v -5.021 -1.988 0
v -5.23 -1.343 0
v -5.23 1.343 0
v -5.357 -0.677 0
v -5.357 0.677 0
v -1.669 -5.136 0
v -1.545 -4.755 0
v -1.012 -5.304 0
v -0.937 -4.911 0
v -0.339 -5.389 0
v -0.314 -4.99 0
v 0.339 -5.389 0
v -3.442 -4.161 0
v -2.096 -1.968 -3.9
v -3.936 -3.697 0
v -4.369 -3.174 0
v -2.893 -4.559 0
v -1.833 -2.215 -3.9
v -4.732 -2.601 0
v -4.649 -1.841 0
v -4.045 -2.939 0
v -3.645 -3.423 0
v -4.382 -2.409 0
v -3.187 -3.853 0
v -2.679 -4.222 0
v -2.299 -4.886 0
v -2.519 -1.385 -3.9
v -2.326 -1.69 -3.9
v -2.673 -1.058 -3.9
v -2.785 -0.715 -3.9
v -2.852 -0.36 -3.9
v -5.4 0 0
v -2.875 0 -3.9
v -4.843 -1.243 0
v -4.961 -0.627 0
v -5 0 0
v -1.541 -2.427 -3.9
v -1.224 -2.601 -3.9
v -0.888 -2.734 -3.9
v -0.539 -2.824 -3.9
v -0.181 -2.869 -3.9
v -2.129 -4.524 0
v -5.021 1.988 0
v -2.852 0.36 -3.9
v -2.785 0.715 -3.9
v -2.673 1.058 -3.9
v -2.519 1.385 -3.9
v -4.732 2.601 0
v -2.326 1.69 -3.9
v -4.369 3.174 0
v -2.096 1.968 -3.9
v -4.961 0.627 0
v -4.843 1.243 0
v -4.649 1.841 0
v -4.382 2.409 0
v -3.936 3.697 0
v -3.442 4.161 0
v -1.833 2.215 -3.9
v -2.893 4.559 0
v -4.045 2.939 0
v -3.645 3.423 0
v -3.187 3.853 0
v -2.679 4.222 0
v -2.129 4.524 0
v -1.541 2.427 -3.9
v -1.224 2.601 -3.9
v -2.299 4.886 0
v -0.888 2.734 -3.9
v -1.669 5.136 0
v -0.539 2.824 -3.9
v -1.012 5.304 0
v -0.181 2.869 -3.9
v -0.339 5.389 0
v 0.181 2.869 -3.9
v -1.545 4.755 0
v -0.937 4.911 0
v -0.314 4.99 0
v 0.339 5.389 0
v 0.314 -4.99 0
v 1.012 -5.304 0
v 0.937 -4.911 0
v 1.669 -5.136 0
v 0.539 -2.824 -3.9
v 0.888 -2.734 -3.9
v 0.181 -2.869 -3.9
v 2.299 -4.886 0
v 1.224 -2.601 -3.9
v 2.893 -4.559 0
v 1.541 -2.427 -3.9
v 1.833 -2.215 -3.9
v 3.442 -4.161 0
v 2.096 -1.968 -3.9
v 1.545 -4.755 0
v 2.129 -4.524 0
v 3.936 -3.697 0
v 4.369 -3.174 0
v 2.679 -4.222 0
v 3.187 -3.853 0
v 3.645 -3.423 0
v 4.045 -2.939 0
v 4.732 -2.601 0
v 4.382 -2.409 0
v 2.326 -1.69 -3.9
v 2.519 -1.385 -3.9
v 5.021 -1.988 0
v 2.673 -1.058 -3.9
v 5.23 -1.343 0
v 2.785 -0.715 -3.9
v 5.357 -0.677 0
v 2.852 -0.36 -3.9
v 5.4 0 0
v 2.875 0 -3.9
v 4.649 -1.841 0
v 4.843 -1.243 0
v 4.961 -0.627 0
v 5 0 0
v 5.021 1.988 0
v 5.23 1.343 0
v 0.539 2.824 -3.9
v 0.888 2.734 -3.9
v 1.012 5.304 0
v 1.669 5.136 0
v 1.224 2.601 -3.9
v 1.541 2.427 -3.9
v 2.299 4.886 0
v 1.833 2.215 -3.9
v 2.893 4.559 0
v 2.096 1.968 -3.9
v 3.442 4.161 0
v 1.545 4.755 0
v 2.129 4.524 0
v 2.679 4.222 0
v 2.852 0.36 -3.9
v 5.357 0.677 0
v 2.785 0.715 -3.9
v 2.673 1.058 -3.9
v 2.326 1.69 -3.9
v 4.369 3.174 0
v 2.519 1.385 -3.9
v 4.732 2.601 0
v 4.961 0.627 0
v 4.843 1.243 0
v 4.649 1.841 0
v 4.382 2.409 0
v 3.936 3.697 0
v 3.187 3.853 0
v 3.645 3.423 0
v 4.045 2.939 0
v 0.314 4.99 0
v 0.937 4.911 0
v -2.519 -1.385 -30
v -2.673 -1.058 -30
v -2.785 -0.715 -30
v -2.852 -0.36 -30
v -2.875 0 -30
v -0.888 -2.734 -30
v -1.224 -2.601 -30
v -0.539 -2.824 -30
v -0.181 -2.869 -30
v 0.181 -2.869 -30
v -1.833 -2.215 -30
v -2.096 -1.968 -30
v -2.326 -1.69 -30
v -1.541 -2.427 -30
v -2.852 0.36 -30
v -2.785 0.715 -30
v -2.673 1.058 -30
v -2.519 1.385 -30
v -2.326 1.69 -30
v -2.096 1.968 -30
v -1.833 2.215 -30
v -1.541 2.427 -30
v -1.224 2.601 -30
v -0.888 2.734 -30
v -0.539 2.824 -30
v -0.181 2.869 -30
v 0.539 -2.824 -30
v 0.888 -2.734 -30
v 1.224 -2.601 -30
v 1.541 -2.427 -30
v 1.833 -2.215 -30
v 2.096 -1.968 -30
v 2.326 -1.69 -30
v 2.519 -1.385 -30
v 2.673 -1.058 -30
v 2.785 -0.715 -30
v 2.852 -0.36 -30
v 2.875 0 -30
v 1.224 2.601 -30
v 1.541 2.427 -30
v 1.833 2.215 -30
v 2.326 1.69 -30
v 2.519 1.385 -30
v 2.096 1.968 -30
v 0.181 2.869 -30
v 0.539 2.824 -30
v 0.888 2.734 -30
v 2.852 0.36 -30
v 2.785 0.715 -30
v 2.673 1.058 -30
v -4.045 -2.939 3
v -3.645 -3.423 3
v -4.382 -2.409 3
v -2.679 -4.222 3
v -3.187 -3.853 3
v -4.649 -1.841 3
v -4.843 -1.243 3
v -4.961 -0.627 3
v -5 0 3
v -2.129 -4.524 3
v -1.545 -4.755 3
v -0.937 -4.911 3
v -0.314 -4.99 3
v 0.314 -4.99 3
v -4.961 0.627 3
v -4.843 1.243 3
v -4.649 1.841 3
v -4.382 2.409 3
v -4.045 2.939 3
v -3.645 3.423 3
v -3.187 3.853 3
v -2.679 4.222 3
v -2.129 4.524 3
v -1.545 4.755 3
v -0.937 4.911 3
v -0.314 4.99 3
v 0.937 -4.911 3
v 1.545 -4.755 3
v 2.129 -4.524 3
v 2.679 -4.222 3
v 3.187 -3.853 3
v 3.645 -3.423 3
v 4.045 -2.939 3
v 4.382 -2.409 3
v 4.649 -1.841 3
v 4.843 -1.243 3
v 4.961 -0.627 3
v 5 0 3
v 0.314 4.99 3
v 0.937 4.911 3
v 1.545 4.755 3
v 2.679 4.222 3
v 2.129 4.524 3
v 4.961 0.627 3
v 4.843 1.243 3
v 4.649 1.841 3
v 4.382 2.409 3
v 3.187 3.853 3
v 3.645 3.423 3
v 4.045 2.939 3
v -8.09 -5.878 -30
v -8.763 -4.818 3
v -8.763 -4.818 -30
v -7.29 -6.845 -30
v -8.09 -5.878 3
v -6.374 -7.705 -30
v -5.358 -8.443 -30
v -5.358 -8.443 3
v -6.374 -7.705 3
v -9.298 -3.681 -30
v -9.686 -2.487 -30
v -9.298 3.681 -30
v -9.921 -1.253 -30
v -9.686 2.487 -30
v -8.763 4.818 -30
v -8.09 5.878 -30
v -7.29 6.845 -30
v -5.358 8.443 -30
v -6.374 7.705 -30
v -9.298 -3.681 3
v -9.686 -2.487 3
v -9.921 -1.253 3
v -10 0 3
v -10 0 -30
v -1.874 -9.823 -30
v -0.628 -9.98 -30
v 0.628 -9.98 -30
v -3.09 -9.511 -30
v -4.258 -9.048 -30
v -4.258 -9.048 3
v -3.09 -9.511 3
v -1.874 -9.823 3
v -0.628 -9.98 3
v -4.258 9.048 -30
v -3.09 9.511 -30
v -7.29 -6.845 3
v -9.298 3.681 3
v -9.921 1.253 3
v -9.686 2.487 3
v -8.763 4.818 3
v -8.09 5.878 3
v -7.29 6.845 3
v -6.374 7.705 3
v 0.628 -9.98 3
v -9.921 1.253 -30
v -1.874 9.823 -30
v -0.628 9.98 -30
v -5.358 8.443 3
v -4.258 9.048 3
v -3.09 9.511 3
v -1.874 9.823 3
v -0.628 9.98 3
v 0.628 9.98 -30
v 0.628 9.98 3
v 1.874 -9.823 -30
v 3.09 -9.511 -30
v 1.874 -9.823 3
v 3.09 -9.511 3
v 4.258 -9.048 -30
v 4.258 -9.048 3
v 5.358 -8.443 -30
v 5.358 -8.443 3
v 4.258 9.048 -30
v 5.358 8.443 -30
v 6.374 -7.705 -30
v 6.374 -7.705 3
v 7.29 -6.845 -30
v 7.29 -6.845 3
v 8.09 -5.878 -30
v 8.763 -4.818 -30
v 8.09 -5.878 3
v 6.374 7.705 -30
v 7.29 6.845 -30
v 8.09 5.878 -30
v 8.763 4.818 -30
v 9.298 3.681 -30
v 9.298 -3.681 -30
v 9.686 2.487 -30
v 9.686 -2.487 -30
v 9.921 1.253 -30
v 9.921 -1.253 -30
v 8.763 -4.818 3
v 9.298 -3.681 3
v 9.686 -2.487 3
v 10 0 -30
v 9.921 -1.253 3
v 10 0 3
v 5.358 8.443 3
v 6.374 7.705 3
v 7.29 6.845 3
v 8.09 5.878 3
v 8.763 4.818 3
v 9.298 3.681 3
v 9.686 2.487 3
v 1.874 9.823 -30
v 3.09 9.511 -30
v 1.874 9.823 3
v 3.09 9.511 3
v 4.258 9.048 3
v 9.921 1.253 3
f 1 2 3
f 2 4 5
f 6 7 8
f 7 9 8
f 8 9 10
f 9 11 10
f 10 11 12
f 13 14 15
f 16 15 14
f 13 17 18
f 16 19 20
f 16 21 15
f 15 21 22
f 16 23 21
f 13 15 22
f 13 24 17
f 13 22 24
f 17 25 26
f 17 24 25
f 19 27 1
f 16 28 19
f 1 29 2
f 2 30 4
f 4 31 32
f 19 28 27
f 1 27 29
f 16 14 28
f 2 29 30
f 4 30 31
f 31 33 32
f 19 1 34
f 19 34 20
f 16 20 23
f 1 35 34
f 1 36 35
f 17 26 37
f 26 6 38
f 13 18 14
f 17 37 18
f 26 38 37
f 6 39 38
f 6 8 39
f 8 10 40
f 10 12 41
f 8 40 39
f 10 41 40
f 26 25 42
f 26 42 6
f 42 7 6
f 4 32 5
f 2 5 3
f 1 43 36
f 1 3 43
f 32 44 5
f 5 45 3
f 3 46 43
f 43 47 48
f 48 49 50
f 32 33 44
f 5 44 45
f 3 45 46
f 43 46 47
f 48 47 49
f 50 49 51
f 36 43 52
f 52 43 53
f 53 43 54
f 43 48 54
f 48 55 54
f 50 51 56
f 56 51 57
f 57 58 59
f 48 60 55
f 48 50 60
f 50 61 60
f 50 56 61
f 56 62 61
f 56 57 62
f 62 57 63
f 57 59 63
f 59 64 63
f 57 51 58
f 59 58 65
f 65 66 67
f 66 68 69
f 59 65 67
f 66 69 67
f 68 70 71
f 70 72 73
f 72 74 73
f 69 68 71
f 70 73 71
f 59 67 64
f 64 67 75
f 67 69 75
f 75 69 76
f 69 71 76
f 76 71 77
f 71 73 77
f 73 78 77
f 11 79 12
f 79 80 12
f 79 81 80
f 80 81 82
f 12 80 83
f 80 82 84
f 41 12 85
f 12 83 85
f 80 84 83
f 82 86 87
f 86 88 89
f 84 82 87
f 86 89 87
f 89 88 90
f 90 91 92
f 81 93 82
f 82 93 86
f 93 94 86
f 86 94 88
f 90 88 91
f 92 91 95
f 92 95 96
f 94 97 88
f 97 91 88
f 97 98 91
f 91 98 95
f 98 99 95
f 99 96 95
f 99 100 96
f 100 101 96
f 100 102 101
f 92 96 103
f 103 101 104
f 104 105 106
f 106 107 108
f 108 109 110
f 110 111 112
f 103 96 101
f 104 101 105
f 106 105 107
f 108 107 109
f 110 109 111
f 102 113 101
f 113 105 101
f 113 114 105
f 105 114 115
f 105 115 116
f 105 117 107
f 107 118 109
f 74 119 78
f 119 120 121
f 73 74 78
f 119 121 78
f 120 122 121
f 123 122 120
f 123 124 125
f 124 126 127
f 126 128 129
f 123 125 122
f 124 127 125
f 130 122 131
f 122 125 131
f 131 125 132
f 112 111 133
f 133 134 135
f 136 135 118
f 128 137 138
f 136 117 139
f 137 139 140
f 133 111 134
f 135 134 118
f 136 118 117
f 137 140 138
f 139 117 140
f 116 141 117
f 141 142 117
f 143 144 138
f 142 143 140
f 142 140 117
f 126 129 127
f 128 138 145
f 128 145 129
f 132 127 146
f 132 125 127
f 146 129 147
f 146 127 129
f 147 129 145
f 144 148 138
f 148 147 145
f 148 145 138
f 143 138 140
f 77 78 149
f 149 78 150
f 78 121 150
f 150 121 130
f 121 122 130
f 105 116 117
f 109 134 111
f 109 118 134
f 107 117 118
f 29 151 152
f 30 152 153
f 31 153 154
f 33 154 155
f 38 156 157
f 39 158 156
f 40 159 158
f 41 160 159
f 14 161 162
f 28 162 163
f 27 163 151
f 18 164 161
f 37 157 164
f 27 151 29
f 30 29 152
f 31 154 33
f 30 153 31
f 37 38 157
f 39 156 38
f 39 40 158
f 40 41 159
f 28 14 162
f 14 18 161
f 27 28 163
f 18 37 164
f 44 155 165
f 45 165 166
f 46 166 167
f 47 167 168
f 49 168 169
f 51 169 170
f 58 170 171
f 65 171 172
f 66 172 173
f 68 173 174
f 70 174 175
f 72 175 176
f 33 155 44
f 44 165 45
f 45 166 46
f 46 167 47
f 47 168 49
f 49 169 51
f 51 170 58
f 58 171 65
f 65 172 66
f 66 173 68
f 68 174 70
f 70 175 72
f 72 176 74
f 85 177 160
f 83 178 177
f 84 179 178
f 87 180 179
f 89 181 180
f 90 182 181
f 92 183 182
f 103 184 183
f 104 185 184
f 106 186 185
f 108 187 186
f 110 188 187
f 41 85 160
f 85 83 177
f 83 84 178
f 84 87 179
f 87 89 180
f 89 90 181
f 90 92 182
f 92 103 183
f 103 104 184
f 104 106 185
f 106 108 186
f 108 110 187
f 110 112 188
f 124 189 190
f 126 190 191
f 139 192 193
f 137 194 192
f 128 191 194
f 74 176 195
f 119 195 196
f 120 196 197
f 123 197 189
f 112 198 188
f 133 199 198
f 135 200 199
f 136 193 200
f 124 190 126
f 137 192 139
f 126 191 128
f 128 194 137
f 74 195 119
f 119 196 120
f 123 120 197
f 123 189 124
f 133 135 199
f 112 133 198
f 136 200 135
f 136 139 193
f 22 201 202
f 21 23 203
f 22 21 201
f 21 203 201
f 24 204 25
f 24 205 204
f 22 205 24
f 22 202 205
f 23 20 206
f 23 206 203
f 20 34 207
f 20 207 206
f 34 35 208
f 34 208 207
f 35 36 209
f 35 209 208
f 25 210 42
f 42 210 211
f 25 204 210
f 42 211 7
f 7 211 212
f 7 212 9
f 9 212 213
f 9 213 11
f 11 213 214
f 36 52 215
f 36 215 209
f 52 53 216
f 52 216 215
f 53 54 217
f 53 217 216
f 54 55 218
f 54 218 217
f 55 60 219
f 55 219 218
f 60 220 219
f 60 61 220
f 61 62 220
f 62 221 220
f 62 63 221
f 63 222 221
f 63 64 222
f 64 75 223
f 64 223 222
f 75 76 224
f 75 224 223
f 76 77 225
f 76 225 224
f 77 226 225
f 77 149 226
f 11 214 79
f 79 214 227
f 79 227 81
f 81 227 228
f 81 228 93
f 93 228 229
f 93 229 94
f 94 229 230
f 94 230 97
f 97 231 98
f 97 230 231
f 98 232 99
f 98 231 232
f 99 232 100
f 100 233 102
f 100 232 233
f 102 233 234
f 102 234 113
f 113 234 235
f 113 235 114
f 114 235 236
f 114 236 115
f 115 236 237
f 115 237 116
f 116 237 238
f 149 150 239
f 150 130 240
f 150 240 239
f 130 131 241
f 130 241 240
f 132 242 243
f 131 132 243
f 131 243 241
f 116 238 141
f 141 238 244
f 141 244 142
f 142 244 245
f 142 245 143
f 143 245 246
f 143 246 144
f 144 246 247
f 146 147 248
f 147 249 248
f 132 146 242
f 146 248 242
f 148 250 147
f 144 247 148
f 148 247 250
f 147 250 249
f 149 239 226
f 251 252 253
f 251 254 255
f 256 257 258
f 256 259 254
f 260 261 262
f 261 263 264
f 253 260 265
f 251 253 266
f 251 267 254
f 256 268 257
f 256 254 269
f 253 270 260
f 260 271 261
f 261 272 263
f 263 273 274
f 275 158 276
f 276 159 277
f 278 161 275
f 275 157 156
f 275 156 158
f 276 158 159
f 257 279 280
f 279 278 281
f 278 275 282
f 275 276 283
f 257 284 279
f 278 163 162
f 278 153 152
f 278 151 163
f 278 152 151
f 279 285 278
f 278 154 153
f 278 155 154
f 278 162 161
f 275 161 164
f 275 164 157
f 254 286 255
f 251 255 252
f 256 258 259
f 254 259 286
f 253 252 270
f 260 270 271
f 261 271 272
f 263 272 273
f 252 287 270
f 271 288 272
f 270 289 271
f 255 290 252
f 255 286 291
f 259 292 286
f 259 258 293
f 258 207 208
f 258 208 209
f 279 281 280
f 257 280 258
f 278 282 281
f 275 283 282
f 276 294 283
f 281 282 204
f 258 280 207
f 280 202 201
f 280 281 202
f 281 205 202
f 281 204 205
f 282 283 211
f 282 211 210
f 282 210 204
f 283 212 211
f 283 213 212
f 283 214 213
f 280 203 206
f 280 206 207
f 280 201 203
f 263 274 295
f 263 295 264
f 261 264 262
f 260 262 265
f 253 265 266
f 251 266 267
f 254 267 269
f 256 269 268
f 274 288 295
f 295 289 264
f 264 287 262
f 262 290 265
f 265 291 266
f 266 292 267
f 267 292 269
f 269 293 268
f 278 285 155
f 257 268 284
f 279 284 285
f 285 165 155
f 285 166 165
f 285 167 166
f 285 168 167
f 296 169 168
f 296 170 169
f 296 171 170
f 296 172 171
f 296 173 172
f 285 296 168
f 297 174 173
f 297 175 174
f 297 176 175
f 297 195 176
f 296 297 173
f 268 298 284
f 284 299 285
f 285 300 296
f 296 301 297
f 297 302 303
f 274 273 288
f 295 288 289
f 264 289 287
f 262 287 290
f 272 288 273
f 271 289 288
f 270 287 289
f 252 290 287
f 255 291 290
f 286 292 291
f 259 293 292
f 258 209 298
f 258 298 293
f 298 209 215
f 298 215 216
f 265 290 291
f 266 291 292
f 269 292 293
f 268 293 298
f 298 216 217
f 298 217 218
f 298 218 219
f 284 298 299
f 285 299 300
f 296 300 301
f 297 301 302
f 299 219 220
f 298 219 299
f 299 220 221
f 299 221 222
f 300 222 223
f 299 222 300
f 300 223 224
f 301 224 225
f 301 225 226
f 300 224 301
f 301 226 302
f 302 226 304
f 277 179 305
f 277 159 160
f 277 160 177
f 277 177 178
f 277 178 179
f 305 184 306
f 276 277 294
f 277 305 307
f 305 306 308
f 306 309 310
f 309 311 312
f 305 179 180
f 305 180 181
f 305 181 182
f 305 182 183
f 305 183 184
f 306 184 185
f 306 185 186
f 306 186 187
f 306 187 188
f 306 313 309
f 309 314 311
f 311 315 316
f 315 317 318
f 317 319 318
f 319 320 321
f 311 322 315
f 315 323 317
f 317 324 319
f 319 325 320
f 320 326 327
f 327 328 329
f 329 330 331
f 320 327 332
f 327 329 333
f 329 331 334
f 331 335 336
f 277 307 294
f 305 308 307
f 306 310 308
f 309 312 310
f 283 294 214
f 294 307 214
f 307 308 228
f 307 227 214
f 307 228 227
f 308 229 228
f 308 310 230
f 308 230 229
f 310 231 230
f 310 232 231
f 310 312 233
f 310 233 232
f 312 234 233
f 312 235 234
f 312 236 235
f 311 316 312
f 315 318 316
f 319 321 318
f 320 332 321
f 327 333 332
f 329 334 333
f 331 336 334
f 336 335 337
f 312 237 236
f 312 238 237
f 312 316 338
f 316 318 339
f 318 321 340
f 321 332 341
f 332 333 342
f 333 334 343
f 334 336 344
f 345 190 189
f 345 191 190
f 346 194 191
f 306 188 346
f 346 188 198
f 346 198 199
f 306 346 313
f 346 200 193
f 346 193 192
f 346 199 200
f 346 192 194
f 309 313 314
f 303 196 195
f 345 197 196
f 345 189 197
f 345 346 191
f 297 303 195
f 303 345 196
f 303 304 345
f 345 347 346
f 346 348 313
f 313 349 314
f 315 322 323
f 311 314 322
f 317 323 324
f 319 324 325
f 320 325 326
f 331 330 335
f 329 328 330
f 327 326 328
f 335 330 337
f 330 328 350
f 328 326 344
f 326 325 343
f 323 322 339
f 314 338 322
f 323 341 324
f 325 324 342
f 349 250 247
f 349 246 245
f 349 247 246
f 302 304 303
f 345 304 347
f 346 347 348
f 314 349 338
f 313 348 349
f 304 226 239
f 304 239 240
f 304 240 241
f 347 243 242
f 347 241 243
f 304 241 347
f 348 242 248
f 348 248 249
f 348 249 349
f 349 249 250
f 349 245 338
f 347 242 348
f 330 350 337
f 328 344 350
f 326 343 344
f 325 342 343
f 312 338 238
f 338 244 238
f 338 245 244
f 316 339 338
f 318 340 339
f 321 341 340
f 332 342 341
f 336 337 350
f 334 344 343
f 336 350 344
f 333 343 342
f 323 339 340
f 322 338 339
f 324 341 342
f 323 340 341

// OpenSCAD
$fn = 50;

difference() {
	union() {
		translate(v = [0, 0, -30.0]) {
			cylinder(h = 33, r = 10.0);
		}
		#translate(v = [0, 0, -33.0]) {
			cylinder(h = 33, r = 2.875);
		}
	}
	union() {
		translate(v = [0, 0, 0]) {
			rotate(a = [0, 0, 0]) {
				difference() {
					union() {
						translate(v = [0, 0, -33.0]) {
							cylinder(h = 33, r = 2.6);
						}
						translate(v = [0, 0, -3.9]) {
							cylinder(h = 3.9, r1 = 2.875, r2 = 5.4);
						}
						translate(v = [0, 0, -33.0]) {
							cylinder(h = 33, r = 2.875);
						}
						translate(v = [0, 0, -33.0]) {
							cylinder(h = 33, r = 2.6);
						}
					}
					union();
				}
			}
		}
		#cylinder(h = 3, r = 5.0);
	}
}
